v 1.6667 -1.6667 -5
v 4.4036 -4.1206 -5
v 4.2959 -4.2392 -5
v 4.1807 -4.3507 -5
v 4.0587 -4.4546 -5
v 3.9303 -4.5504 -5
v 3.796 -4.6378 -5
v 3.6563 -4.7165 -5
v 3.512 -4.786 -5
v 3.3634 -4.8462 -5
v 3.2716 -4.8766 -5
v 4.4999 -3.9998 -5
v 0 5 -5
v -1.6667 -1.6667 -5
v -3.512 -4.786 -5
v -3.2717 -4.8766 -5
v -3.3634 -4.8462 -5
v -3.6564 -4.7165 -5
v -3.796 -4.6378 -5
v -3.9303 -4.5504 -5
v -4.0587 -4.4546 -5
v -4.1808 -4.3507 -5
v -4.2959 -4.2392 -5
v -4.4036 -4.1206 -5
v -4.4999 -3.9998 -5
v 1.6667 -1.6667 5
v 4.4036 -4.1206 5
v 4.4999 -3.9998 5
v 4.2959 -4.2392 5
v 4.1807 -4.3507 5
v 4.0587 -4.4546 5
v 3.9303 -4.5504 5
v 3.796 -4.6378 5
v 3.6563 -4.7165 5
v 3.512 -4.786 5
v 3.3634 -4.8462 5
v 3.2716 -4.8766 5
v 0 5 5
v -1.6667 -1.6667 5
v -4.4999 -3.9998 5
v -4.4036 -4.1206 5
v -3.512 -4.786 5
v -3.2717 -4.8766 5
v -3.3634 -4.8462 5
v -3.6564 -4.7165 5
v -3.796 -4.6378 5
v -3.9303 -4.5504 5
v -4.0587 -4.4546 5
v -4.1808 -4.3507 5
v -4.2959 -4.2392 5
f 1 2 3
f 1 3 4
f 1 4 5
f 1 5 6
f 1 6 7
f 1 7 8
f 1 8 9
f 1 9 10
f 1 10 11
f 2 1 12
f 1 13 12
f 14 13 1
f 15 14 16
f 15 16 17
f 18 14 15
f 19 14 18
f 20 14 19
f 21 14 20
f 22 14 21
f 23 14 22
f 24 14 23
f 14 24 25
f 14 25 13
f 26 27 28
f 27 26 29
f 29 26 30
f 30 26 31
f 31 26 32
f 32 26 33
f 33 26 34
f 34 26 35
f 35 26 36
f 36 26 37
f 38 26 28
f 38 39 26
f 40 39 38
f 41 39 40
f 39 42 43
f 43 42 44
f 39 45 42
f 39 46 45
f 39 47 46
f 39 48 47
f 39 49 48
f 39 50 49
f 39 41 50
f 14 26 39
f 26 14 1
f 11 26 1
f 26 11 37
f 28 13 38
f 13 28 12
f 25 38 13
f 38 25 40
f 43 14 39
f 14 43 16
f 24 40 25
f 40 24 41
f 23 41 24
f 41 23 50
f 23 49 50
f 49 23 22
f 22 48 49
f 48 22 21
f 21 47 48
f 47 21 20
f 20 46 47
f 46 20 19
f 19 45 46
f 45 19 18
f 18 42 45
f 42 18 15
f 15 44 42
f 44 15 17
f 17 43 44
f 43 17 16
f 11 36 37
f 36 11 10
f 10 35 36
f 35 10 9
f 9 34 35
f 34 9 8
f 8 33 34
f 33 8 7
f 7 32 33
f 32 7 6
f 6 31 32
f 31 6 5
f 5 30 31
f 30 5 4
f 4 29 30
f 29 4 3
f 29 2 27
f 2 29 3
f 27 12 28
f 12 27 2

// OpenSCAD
// Generated by SolidPython 1.1.3 on 2025-02-20 04:03:39
$fn=50;


intersection() {
	translate(v = [-5.0000000000, -5.0000000000, -5.0000000000]) {
		linear_extrude(height = 10) {
			polygon(points = [[0, 0], [5.0000000000, 10], [10, 0], [8.3333333333, 0], [6.6666666667, 3.3333333333], [3.3333333333, 3.3333333333], [1.6666666667, 0]]);
		}
	}
	rotate(a = -90, v = [0, 0, 1]) {
		translate(v = [-5.0000000000, -5.0000000000, -5.0000000000]) {
			linear_extrude(height = 10) {
				polygon(points = [[7.5000000000, 10.0000000000], [7.6601755500, 9.9948634819], [7.8196929042, 9.9794750346], [7.9778965718, 9.9538978925], [8.1341364598, 9.9182371576], [8.2877705451, 9.8726393675], [8.4381675122, 9.8172918934], [8.5847093478, 9.7524221698], [8.7267938800, 9.6782967603], [8.8638372530, 9.5952202622], [8.9952763262, 9.5035340547], [9.1205709883, 9.4036148959], [9.2392063765, 9.2958733752], [9.3506949927, 9.1807522257], [9.4545787062, 9.0587245046], [9.5504306365, 8.9302916503], [9.6378569075, 8.7959814208], [9.7164982659, 8.6563457256], [9.7860315575, 8.5119583578], [9.8461710551, 8.3634126361], [9.8966696326, 8.2113189666], [9.9373197805, 8.0563023349], [9.9679544585, 7.8989997376], [9.9884477824, 7.7400575648], [9.9987155405, 7.5801289439], [9.9987155405, 7.4198710561], [9.9884477824, 7.2599424352], [9.9679544585, 7.1010002624], [9.9373197805, 6.9436976651], [9.8966696326, 6.7886810334], [9.8461710551, 6.6365873639], [9.7860315575, 6.4880416422], [9.7164982659, 6.3436542744], [9.6378569075, 6.2040185792], [9.5504306365, 6.0697083497], [9.4545787062, 5.9412754954], [9.3506949927, 5.8192477743], [9.2392063765, 5.7041266248], [9.1205709883, 5.5963851041], [8.9952763262, 5.4964659453], [8.8638372530, 5.4047797378], [8.7267938800, 5.3217032397], [8.5847093478, 5.2475778302], [8.4381675122, 5.1827081066], [8.2877705451, 5.1273606325], [8.1341364598, 5.0817628424], [7.9778965718, 5.0461021075], [7.8196929042, 5.0205249654], [7.6601755500, 5.0051365181], [7.5000000000, 5.0000000000], [7.5000000000, 5.0000000000], [7.6601755500, 4.9948634819], [7.8196929042, 4.9794750346], [7.9778965718, 4.9538978925], [8.1341364598, 4.9182371576], [8.2877705451, 4.8726393675], [8.4381675122, 4.8172918934], [8.5847093478, 4.7524221698], [8.7267938800, 4.6782967603], [8.8638372530, 4.5952202622], [8.9952763262, 4.5035340547], [9.1205709883, 4.4036148959], [9.2392063765, 4.2958733752], [9.3506949927, 4.1807522257], [9.4545787062, 4.0587245046], [9.5504306365, 3.9302916503], [9.6378569075, 3.7959814208], [9.7164982659, 3.6563457256], [9.7860315575, 3.5119583578], [9.8461710551, 3.3634126361], [9.8966696326, 3.2113189666], [9.9373197805, 3.0563023349], [9.9679544585, 2.8989997376], [9.9884477824, 2.7400575648], [9.9987155405, 2.5801289439], [9.9987155405, 2.4198710561], [9.9884477824, 2.2599424352], [9.9679544585, 2.1010002624], [9.9373197805, 1.9436976651], [9.8966696326, 1.7886810334], [9.8461710551, 1.6365873639], [9.7860315575, 1.4880416422], [9.7164982659, 1.3436542744], [9.6378569075, 1.2040185792], [9.5504306365, 1.0697083497], [9.4545787062, 0.9412754954], [9.3506949927, 0.8192477743], [9.2392063765, 0.7041266248], [9.1205709883, 0.5963851041], [8.9952763262, 0.4964659453], [8.8638372530, 0.4047797378], [8.7267938800, 0.3217032397], [8.5847093478, 0.2475778302], [8.4381675122, 0.1827081066], [8.2877705451, 0.1273606325], [8.1341364598, 0.0817628424], [7.9778965718, 0.0461021075], [7.8196929042, 0.0205249654], [7.6601755500, 0.0051365181], [7.5000000000, 0.0000000000], [0, 0], [0, 10]]);
			}
		}
	}
}
/***********************************************
*********      SolidPython code:      **********
************************************************
 
from solid import *
from solid.utils import *

import math
import matplotlib.pyplot as plt
import subprocess
import os

class Hole:
    def __init__(self, x, y, radius):
        """
        Hole defined by:
        :param x: x dimension for center point of the circle as a ratio of letter height
        :param y: y dimension for center point of the circle as a ratio of letter height
        :param radius: radius of circle as a ratio of letter height
        """
        self.x = x
        self.y = y
        self.radius = radius

class Letter3D:
    def __init__(self, name, outer_shape_points, height, holes=None):
        """
        3D Letter defined by:
        :param name: name of letter
        :param outer_shape_points: points defining the outer shape of the letter
        :param heigh: size of cube that letter fits inside
        :param holes: list of Holes
        """
        self.name = name
        self.outer_shape_points = outer_shape_points
        self.holes = holes if holes is None else []
        self.height = height


    def generate(self):
        shape = polygon(points=self.outer_shape_points)

        if self.holes:
            for hole in self.holes:
                circle_hole = circle(r=hole.radius*self.height)
                positioned_hole = translate([hole.x*self.height, hole.y*self.height])(circle_hole)
                shape = difference()(shape, positioned_hole)
        
        shape_3d = linear_extrude(height=self.height)(shape)
        shape_3d = translate([-self.height/2, -self.height/2, -self.height/2])(shape_3d)
        return shape_3d
    
    def render(self):
        scad_render_to_file(self.shape, f"output/{self.name}.scad", file_header='$fn=50;')
        subprocess.run(["C:\\Program Files\\OpenSCAD\\openscad.exe", "-o", f"output\\{self.name}.stl", f"output\\{self.name}.scad"])


class TwoLetter3D:
    def __init__(self, height, letterA, letterA_face, letterB=None, letterB_face=None):
        self.height = height
        self.letterA = letterA
        self.letterB = letterB
        self.letterA_face = letterA_face
        self.letterB_face = letterB_face

    def call_letter_generation(self, letter):
        letter = letter.upper()
        function_name = f"letter_{letter}"
        func = globals().get(function_name)
        if func is None:
            raise ValueError(f"No letter generation function defined for letter '{letter}'.")
        else:
            print(func)
        return func(self.height)
    
    def rotate_object(self, face, shape):
        face = face.lower()
        if face == "z":
            return shape
        if face == "x":
            return rotate(a=90, v=[0,1,0])(shape)
        if face == "y":
            return rotate(a=-90, v=[0,0,1])(shape)
        else:
            raise ValueError("Face must be one of 'x', 'y', or 'z'.")

    def render(self):
        if self.letterA:
            letterA3D = self.call_letter_generation(self.letterA)
            letterA3D = self.rotate_object(self.letterA_face, letterA3D)

        if self.letterB:
            letterB3D = self.call_letter_generation(self.letterB)
            letterB3D = self.rotate_object(self.letterB_face, letterB3D)
            combined = intersection()(letterA3D, letterB3D)
            file_name = self.letterA + self.letterB
            scad_render_to_file(combined, f"output/{file_name}.scad", file_header='$fn=50;')
            subprocess.run(["C:\\Program Files\\OpenSCAD\\openscad.exe", "-o", f"output\\{file_name}.stl", f"output\\{file_name}.scad"])
            return
        else:
            file_name = self.letterA
            scad_render_to_file(letterA3D, f"output/{file_name}.scad", file_header='$fn=50;')
            subprocess.run(["C:\\Program Files\\OpenSCAD\\openscad.exe", "-o", f"output\\{file_name}.stl", f"output\\{file_name}.scad"])
    
                

def arc_points(radius, start_angle, end_angle, center=[0,0], num_points=50):
    angles = [start_angle + i * (end_angle - start_angle) / (num_points - 1)
              for i in range(num_points)]
    points = [
        (center[0] + radius * math.cos(math.radians(angle)),
         center[1] + radius * math.sin(math.radians(angle)))
        for angle in angles
    ]
    return points

def letter_A(h):
    shape_points = [(0,0), (h/2, h), (h, 0), (5/6*h, 0), (2/3*h, 1/3*h), (1/3*h, 1/3*h), (h/6, 0)]
    holes = [Hole(1/2, 7/12, 1/6)]
    A = Letter3D("A", shape_points, h, holes)
    return A.generate()

def letter_B(h):
    top_arc_points = arc_points(h/4, 90, -90, center=[3/4*h, 3/4*h])
    bottom_arc_points = arc_points(h/4, 90, -90, center=[3/4*h, h/4])
    other_points = [(0,0),(0,h)]

    shape_points = top_arc_points + bottom_arc_points + other_points
    holes = [Hole(1/2, 3/4, 1/6), Hole(1/2, 1/4, 1/6)]
    B = Letter3D("B", shape_points, h, holes)
    return B.generate()

def letter_C(h):
    outer_arc_points = arc_points(h/2, 30, 330, center=[h/2,h/2])
    inner_arc_points = arc_points(h/4, 30, 330, center=[h/2,h/2])[::-1]
    shape_points = outer_arc_points + inner_arc_points
    # print(shape_points)
    C = Letter3D("C", shape_points, h)
    return C.generate()


def letter_D(h):
    outer_arc_points = arc_points(h/2, 90, -90, center= [h/2, h/2])
    shape_points = outer_arc_points + [(0,0), (0, h)]
    holes = [Hole(1/2, 1/2, 1/6)]
    D = Letter3D("D", shape_points, h, holes)
    return D.generate()

def letter_E(h):
    points = [(0,0), (h,0), (h,h/5), (h/5,h/5), (h/5,2/5*h), (3/4*h,2/5*h), (3/4*h,3/5*h), (h/5,3/5*h), (h/5,4/5*h), (h,4/5*h), (h,h), (0,h)]
    E = Letter3D("E", points, h)
    return E.generate()

def letter_F(h):
    points = [(0,0), (h/5,0), (h/5,2/5*h), (3/4*h,2/5*h), (3/4*h,3/5*h), (h/5,3/5*h), (h/5,4/5*h), (h,4/5*h), (h,h), (0,h)]
    F = Letter3D("F", points, h)
    return F.generate()

if __name__ == "__main__":
    os.makedirs("output", exist_ok=True)

    letters = [chr(x) for x in range(ord('A'), ord('F') + 1)]
    for letter in letters:
        for other_letter in letters:
            shape = TwoLetter3D(10, letter, "z", other_letter, "y")
            shape.render()
 
 
************************************************/
